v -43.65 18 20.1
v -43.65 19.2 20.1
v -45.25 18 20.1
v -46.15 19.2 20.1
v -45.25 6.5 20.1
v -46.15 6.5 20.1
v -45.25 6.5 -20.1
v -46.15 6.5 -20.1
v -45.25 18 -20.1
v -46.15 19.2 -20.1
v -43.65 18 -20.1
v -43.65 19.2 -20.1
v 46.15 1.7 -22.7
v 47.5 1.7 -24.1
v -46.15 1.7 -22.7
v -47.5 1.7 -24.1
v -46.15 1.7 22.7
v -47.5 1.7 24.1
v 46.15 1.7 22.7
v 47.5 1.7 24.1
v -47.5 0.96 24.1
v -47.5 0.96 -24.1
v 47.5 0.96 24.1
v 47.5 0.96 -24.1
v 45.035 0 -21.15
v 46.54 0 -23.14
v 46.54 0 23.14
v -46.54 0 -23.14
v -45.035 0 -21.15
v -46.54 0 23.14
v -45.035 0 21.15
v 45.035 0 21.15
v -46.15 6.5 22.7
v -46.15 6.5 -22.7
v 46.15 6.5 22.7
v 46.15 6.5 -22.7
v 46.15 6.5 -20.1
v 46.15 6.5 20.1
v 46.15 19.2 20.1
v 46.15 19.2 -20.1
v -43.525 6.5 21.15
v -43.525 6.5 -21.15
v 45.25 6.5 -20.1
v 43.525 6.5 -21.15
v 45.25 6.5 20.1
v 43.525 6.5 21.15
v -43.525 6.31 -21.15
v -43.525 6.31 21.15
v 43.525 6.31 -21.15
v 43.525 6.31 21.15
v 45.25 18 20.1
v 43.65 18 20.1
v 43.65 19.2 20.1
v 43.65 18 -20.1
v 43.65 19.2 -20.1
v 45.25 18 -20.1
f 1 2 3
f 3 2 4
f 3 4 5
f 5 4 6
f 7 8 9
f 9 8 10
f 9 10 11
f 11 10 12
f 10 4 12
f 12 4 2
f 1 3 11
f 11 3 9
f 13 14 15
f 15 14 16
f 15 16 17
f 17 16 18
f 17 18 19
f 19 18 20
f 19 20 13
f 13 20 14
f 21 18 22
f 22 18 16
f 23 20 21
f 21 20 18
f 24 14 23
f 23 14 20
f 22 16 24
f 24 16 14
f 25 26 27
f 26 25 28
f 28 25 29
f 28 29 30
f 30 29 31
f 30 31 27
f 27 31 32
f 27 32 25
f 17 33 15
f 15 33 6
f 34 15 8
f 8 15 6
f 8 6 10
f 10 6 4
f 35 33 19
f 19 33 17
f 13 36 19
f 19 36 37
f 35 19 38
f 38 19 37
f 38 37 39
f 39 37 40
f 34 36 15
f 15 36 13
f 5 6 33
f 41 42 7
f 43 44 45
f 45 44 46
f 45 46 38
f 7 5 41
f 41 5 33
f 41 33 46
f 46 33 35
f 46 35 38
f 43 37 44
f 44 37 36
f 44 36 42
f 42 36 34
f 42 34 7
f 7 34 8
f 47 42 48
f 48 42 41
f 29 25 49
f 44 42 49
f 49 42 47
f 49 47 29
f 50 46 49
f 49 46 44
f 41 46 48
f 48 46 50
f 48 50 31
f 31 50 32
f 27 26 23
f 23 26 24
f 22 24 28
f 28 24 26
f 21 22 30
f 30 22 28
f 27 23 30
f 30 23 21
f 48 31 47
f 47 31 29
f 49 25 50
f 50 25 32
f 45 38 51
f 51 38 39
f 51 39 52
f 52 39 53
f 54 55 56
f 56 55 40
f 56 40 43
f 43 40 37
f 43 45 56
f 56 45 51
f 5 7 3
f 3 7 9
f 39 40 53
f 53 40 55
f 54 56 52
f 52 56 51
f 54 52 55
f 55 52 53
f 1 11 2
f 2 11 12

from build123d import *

# Parameters (mm, degrees)
SKETCH1_W            = 95
SKETCH1_H            = 48.2
BOSS_EXTRUDE2_DEPTH  = 1.7
SKETCH3_W            = 92.3
SKETCH3_H            = 45.4
BOSS_EXTRUDE3_DEPTH  = 4.8
SKETCH4_W            = 87.05
SKETCH4_H            = 42.3
CUT_EXTRUDE1_DEPTH   = 7.5
CHAMFER1_SIZE        = 0.96
CHAMFER2_SIZE        = 0.96
CHAMFER3_SIZE        = 0.96
CHAMFER4_SIZE        = 0.96
CHAMFER5_SIZE        = 6.31
CHAMFER5_SIZE2       = 1.51
CHAMFER6_SIZE        = 6.31
CHAMFER6_SIZE2       = 1.51
SKETCH5_W            = 92.3
SKETCH5_H            = 40.2
BOSS_EXTRUDE11_DEPTH = 11.5
SKETCH6_W            = 90.5
SKETCH6_H            = 40.2
CUT_EXTRUDE2_DEPTH   = 11.5
SKETCH7_W            = 92.3
SKETCH7_H            = 40.2
BOSS_EXTRUDE12_DEPTH = 1.2
SKETCH8_W            = 87.3
SKETCH8_H            = 40.2
CUT_EXTRUDE3_DEPTH   = 1.2


with BuildPart() as part:
    # Sketch1 → Boss-Extrude2 (new body)
    with BuildSketch(Plane(origin=(0, 0, 0), x_dir=(1, 0, 0), z_dir=(0, 1, 0))):
        Rectangle(SKETCH1_W, SKETCH1_H)
    extrude(amount=BOSS_EXTRUDE2_DEPTH)

    # Sketch3 → Boss-Extrude3 (add)
    with BuildSketch(Plane(origin=(0, 1.7, 0), x_dir=(1, 0, 0), z_dir=(0, 1, 0))):
        Rectangle(SKETCH3_W, SKETCH3_H)
    extrude(amount=BOSS_EXTRUDE3_DEPTH)

    # Sketch4 → Cut-Extrude1 (cut, through all)
    with BuildSketch(Plane(origin=(0, 6.5, 0), x_dir=(-1, 0, 0), z_dir=(0, 1, 0))):
        Rectangle(SKETCH4_W, SKETCH4_H)
    extrude(amount=-CUT_EXTRUDE1_DEPTH, mode=Mode.SUBTRACT)

    # Chamfer1
    chamfer1_edges = [part.edges().sort_by_distance(p)[0] for p in [
        (47.5, 0, 0),
    ]]
    chamfer(chamfer1_edges, length=CHAMFER1_SIZE)

    # Chamfer2
    chamfer2_edges = [part.edges().sort_by_distance(p)[0] for p in [
        (-0.48, 0, -24.1),
    ]]
    chamfer(chamfer2_edges, length=CHAMFER2_SIZE)

    # Chamfer3
    chamfer3_edges = [part.edges().sort_by_distance(p)[0] for p in [
        (-47.5, 0, 0.48),
    ]]
    chamfer(chamfer3_edges, length=CHAMFER3_SIZE)

    # Chamfer4
    chamfer4_edges = [part.edges().sort_by_distance(p)[0] for p in [
        (0, 0, 24.1),
    ]]
    chamfer(chamfer4_edges, length=CHAMFER4_SIZE)

    # Chamfer5
    chamfer5_edges = [part.edges().sort_by_distance(p)[0] for p in [
        (-43.525, 0, 0),
    ]]
    chamfer5_side = [part.faces().sort_by_distance(p)[0] for p in [
        (-43.525, 3.25, 0),
    ]]
    chamfer(chamfer5_edges, length=CHAMFER5_SIZE, length2=CHAMFER5_SIZE2, reference=chamfer5_side[0])

    # Chamfer6
    chamfer6_edges = [part.edges().sort_by_distance(p)[0] for p in [
        (43.525, 0, 0),
    ]]
    chamfer6_side = [part.faces().sort_by_distance(p)[0] for p in [
        (43.525, 3.25, 0),
    ]]
    chamfer(chamfer6_edges, length=CHAMFER6_SIZE, length2=CHAMFER6_SIZE2, reference=chamfer6_side[0])

    # Sketch5 → Boss-Extrude11 (add)
    with BuildSketch(Plane(origin=(0, 6.5, 0), x_dir=(1, 0, 0), z_dir=(0, 1, 0))):
        Rectangle(SKETCH5_W, SKETCH5_H)
    extrude(amount=BOSS_EXTRUDE11_DEPTH)

    # Sketch6 → Cut-Extrude2 (cut)
    with BuildSketch(Plane(origin=(0, 18, 0), x_dir=(1, 0, 0), z_dir=(0, 1, 0))):
        Rectangle(SKETCH6_W, SKETCH6_H)
    extrude(amount=-CUT_EXTRUDE2_DEPTH, mode=Mode.SUBTRACT)

    # Sketch7 → Boss-Extrude12 (add)
    with BuildSketch(Plane(origin=(0, 18, 0), x_dir=(-1, 0, 0), z_dir=(0, 1, 0))):
        Rectangle(SKETCH7_W, SKETCH7_H)
    extrude(amount=BOSS_EXTRUDE12_DEPTH)

    # Sketch8 → Cut-Extrude3 (cut)
    with BuildSketch(Plane(origin=(0, 19.2, 0), x_dir=(1, 0, 0), z_dir=(0, 1, 0))):
        Rectangle(SKETCH8_W, SKETCH8_H)
    extrude(amount=-CUT_EXTRUDE3_DEPTH, mode=Mode.SUBTRACT)


solid = part.part
